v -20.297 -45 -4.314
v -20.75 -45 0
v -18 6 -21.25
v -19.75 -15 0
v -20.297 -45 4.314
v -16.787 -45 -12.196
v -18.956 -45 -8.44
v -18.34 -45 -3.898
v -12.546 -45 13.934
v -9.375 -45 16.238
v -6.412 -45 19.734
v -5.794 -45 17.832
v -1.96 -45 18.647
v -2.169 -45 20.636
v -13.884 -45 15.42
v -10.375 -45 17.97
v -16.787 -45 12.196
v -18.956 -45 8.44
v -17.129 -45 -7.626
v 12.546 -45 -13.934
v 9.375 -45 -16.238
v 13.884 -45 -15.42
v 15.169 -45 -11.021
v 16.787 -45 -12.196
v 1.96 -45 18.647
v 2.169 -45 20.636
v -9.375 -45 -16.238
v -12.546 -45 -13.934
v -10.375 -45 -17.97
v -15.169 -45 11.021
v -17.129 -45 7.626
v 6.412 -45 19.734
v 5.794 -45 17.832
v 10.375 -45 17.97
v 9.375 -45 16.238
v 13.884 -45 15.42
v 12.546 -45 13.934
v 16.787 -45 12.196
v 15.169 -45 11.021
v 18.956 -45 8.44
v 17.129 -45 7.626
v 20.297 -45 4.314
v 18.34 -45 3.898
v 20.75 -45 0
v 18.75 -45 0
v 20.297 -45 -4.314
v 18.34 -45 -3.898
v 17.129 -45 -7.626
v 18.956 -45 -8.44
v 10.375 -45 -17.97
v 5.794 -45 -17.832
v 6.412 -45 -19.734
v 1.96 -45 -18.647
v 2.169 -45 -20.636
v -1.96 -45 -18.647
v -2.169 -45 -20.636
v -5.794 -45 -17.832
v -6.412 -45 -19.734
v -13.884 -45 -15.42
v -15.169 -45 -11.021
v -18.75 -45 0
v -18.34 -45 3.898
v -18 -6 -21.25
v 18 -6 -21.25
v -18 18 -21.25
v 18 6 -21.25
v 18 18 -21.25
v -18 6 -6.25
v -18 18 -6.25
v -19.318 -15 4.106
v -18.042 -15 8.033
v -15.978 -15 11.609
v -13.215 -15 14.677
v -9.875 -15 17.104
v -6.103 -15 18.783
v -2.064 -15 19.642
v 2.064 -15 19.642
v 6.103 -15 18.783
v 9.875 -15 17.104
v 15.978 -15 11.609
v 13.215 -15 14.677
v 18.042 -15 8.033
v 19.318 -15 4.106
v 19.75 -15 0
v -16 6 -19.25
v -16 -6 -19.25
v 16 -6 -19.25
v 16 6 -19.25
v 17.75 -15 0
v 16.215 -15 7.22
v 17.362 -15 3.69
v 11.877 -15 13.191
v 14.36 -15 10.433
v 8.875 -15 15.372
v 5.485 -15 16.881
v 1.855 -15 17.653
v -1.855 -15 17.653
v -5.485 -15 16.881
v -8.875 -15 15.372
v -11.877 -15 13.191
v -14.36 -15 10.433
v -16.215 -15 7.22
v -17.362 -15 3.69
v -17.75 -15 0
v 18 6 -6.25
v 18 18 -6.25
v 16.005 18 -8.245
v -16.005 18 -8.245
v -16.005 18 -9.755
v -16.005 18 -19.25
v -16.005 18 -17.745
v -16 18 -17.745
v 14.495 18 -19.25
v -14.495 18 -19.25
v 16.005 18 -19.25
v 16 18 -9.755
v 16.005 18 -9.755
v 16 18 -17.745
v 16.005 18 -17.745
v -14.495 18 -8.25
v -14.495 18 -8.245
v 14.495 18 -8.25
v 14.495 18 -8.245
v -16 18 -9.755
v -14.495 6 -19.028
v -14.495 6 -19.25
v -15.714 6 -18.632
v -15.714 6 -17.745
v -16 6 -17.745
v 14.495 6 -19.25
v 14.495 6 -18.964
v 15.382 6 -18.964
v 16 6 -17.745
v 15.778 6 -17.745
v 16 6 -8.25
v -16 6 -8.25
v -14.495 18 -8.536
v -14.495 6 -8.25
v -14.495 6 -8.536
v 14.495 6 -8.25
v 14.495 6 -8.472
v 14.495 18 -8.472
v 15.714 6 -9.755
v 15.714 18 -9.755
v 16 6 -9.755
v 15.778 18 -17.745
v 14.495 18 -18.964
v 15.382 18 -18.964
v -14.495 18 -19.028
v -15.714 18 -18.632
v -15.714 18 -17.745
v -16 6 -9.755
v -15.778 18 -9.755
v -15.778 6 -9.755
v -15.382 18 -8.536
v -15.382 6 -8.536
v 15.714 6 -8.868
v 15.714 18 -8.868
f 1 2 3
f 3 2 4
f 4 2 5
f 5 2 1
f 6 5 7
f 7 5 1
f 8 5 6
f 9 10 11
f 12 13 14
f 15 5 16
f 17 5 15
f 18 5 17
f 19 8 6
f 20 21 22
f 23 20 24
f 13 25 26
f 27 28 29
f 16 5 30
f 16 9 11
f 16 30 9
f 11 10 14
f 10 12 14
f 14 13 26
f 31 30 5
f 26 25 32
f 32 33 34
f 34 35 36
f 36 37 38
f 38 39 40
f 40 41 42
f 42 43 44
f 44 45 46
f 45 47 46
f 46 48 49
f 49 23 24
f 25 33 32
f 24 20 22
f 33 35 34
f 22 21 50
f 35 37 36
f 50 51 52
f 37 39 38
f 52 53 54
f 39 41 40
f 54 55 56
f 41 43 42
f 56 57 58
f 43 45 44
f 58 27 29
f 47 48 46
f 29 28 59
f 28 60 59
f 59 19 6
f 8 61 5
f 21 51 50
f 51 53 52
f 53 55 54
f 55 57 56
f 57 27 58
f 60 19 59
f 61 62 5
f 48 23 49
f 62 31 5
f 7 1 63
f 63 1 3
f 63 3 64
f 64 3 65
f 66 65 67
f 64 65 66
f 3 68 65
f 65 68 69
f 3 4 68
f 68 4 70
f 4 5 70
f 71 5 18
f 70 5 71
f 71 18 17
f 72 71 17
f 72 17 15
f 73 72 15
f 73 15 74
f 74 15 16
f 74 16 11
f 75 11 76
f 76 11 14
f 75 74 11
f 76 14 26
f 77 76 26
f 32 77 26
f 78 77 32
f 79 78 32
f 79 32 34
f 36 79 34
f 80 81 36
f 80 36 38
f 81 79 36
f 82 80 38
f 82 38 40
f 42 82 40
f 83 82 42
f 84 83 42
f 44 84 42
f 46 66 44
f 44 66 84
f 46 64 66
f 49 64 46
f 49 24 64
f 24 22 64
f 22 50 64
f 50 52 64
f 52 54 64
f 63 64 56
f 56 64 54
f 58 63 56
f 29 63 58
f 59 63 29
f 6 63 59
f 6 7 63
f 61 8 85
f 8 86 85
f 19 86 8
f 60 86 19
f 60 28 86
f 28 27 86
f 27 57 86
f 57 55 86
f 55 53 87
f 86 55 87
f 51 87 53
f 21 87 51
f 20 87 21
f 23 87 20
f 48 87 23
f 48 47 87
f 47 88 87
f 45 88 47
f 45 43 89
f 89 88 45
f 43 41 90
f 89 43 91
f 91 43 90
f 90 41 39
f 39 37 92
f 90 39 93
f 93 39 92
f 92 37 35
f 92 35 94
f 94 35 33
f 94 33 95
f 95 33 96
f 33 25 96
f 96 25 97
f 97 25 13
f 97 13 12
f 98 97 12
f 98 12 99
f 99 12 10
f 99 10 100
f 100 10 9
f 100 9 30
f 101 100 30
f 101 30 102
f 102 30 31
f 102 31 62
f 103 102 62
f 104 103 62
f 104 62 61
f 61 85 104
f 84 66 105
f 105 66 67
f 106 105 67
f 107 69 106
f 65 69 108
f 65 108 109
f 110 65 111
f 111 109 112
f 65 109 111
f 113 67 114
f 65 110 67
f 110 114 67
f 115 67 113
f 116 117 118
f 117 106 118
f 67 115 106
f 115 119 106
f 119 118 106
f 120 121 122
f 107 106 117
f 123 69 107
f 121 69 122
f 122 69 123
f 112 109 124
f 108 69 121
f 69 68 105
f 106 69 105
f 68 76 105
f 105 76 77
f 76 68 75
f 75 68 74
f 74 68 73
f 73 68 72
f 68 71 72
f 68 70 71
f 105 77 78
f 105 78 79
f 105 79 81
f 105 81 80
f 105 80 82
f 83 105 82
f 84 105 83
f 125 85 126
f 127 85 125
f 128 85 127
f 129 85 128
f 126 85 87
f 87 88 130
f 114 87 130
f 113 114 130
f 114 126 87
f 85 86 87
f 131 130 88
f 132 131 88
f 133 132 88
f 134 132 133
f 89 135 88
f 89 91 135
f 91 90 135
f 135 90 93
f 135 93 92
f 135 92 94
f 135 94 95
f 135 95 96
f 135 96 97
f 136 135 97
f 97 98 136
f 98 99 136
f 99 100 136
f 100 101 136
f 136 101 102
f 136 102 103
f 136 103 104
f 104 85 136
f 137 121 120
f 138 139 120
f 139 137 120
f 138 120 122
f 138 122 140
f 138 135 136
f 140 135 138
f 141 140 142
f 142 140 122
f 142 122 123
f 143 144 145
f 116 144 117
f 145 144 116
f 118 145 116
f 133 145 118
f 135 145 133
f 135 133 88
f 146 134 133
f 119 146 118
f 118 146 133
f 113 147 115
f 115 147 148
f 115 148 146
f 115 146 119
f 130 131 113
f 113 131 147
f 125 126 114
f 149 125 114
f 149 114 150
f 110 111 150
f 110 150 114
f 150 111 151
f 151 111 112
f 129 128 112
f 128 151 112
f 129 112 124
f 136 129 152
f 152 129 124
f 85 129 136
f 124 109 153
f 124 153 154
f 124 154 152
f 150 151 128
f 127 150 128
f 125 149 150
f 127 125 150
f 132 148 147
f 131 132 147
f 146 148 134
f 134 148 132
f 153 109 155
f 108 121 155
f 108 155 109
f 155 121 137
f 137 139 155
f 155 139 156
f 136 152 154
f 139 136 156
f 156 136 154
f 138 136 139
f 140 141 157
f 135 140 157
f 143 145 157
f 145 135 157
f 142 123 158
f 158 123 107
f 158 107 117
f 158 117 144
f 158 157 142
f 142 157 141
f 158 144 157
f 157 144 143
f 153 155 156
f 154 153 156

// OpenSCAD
//
// nelsoncs 2014Jul20 - NCSAppSoft.com
// 
// vacuum adapter for makita palm sander model BO4552 - attaches where the
// useless bag was to go, and meant to fit your "average" household vacuum
// cleaner wand (NOT a shop vac).
//
// Don't forget that it requires template punched holes in the sand paper.
//

sander_fitting_corner = 1.5;
wall_thickness        = 4;
anti_manifold         = 8;

sander_fitting_width  = 32;
sander_fitting_height = 11;
sander_fitting_length = 12;
sander_diff_cube =      [sander_fitting_width,
                        sander_fitting_length,
                        sander_fitting_height
                        ];

sander_fitting_wall   = [sander_fitting_width + wall_thickness,
                        sander_fitting_length,
                        sander_fitting_height + wall_thickness
                        ];

vacuum_diameter       = 35.5;
taper                 = 2;
vacuum_length         = 30;



module fillet(r, h) {
    translate([r/2, r/2, 0])
    difference() {
       cube([r + 0.01, r + 0.01, h], center = true);

       translate([r/2, r/2, 0])
           cylinder(r = r, h = h + 1, center = true);
    }
}

module hull_inside() {
    hull() {
        rotate( [90,0,0] )
        translate( [0, 0, 15] )
        cylinder( d1 = vacuum_diameter, 
                  d2 = vacuum_diameter + taper,
                  h  = vacuum_length
                  );
        
        translate( [ 0, 0, -((vacuum_diameter/2)-wall_thickness) ] )
        cube( size = sander_diff_cube, center=true);
    }
}

module hull_outside() {
    hull() {
        rotate( [90,0,0] )
        translate( [0, 0, 15] )
        cylinder( d1 = vacuum_diameter+wall_thickness, 
                  d2 = vacuum_diameter+wall_thickness + taper,
                  h  = vacuum_length
                  );
        
        translate( [ 0, 0, -((vacuum_diameter/2)-wall_thickness) ] )          
        cube( size = sander_fitting_wall, center=true);
                  
    }
}


module assembly() {
    union() {
    
        //
        // vacuum attachment and hull to sander side
        //
        difference() {
            hull_outside();
            hull_inside();
        }
    
        //
        // sander attachment with fillets
        //
        union() {
            translate( [ 0, sander_fitting_length, -((vacuum_diameter/2)-wall_thickness) ] )
            difference() {                
                cube( size = sander_fitting_wall, center=true);
                cube( size = sander_diff_cube, center=true);
            }
        
            //
            // inside chamfers to match sander
            //
            translate( [0, sander_fitting_length, -((vacuum_diameter/2) + wall_thickness/2) + 0.5] )
            rotate( [90,0,0] )
             {
                translate( [sander_fitting_width/2, 0, 0] ) {
                    
                    //
                    // upper left
                    //
                    rotate( [0, 0, 90] )
                    fillet( 1.5, sander_fitting_length);

                    //
                    //  lower left
                    //
                    translate( [0, sander_fitting_height, 0] ) {
                        rotate( [0, 0, 180] )
                        fillet( 1.5, sander_fitting_length);
                    }
                }
                
                translate( [-sander_fitting_width/2, 0, 0] ) {
                    
                    //
                    // upper right
                    //
                    fillet( 1.5, sander_fitting_length);
                
                    //
                    //  lower right
                    //
                    translate( [0, sander_fitting_height, 0] ) {
                        rotate( [0, 0, -90] )
                        fillet( 1.5, sander_fitting_length);
                    }
                }
            }
        }  // sander attachment
    } // top level union
}

assembly();
